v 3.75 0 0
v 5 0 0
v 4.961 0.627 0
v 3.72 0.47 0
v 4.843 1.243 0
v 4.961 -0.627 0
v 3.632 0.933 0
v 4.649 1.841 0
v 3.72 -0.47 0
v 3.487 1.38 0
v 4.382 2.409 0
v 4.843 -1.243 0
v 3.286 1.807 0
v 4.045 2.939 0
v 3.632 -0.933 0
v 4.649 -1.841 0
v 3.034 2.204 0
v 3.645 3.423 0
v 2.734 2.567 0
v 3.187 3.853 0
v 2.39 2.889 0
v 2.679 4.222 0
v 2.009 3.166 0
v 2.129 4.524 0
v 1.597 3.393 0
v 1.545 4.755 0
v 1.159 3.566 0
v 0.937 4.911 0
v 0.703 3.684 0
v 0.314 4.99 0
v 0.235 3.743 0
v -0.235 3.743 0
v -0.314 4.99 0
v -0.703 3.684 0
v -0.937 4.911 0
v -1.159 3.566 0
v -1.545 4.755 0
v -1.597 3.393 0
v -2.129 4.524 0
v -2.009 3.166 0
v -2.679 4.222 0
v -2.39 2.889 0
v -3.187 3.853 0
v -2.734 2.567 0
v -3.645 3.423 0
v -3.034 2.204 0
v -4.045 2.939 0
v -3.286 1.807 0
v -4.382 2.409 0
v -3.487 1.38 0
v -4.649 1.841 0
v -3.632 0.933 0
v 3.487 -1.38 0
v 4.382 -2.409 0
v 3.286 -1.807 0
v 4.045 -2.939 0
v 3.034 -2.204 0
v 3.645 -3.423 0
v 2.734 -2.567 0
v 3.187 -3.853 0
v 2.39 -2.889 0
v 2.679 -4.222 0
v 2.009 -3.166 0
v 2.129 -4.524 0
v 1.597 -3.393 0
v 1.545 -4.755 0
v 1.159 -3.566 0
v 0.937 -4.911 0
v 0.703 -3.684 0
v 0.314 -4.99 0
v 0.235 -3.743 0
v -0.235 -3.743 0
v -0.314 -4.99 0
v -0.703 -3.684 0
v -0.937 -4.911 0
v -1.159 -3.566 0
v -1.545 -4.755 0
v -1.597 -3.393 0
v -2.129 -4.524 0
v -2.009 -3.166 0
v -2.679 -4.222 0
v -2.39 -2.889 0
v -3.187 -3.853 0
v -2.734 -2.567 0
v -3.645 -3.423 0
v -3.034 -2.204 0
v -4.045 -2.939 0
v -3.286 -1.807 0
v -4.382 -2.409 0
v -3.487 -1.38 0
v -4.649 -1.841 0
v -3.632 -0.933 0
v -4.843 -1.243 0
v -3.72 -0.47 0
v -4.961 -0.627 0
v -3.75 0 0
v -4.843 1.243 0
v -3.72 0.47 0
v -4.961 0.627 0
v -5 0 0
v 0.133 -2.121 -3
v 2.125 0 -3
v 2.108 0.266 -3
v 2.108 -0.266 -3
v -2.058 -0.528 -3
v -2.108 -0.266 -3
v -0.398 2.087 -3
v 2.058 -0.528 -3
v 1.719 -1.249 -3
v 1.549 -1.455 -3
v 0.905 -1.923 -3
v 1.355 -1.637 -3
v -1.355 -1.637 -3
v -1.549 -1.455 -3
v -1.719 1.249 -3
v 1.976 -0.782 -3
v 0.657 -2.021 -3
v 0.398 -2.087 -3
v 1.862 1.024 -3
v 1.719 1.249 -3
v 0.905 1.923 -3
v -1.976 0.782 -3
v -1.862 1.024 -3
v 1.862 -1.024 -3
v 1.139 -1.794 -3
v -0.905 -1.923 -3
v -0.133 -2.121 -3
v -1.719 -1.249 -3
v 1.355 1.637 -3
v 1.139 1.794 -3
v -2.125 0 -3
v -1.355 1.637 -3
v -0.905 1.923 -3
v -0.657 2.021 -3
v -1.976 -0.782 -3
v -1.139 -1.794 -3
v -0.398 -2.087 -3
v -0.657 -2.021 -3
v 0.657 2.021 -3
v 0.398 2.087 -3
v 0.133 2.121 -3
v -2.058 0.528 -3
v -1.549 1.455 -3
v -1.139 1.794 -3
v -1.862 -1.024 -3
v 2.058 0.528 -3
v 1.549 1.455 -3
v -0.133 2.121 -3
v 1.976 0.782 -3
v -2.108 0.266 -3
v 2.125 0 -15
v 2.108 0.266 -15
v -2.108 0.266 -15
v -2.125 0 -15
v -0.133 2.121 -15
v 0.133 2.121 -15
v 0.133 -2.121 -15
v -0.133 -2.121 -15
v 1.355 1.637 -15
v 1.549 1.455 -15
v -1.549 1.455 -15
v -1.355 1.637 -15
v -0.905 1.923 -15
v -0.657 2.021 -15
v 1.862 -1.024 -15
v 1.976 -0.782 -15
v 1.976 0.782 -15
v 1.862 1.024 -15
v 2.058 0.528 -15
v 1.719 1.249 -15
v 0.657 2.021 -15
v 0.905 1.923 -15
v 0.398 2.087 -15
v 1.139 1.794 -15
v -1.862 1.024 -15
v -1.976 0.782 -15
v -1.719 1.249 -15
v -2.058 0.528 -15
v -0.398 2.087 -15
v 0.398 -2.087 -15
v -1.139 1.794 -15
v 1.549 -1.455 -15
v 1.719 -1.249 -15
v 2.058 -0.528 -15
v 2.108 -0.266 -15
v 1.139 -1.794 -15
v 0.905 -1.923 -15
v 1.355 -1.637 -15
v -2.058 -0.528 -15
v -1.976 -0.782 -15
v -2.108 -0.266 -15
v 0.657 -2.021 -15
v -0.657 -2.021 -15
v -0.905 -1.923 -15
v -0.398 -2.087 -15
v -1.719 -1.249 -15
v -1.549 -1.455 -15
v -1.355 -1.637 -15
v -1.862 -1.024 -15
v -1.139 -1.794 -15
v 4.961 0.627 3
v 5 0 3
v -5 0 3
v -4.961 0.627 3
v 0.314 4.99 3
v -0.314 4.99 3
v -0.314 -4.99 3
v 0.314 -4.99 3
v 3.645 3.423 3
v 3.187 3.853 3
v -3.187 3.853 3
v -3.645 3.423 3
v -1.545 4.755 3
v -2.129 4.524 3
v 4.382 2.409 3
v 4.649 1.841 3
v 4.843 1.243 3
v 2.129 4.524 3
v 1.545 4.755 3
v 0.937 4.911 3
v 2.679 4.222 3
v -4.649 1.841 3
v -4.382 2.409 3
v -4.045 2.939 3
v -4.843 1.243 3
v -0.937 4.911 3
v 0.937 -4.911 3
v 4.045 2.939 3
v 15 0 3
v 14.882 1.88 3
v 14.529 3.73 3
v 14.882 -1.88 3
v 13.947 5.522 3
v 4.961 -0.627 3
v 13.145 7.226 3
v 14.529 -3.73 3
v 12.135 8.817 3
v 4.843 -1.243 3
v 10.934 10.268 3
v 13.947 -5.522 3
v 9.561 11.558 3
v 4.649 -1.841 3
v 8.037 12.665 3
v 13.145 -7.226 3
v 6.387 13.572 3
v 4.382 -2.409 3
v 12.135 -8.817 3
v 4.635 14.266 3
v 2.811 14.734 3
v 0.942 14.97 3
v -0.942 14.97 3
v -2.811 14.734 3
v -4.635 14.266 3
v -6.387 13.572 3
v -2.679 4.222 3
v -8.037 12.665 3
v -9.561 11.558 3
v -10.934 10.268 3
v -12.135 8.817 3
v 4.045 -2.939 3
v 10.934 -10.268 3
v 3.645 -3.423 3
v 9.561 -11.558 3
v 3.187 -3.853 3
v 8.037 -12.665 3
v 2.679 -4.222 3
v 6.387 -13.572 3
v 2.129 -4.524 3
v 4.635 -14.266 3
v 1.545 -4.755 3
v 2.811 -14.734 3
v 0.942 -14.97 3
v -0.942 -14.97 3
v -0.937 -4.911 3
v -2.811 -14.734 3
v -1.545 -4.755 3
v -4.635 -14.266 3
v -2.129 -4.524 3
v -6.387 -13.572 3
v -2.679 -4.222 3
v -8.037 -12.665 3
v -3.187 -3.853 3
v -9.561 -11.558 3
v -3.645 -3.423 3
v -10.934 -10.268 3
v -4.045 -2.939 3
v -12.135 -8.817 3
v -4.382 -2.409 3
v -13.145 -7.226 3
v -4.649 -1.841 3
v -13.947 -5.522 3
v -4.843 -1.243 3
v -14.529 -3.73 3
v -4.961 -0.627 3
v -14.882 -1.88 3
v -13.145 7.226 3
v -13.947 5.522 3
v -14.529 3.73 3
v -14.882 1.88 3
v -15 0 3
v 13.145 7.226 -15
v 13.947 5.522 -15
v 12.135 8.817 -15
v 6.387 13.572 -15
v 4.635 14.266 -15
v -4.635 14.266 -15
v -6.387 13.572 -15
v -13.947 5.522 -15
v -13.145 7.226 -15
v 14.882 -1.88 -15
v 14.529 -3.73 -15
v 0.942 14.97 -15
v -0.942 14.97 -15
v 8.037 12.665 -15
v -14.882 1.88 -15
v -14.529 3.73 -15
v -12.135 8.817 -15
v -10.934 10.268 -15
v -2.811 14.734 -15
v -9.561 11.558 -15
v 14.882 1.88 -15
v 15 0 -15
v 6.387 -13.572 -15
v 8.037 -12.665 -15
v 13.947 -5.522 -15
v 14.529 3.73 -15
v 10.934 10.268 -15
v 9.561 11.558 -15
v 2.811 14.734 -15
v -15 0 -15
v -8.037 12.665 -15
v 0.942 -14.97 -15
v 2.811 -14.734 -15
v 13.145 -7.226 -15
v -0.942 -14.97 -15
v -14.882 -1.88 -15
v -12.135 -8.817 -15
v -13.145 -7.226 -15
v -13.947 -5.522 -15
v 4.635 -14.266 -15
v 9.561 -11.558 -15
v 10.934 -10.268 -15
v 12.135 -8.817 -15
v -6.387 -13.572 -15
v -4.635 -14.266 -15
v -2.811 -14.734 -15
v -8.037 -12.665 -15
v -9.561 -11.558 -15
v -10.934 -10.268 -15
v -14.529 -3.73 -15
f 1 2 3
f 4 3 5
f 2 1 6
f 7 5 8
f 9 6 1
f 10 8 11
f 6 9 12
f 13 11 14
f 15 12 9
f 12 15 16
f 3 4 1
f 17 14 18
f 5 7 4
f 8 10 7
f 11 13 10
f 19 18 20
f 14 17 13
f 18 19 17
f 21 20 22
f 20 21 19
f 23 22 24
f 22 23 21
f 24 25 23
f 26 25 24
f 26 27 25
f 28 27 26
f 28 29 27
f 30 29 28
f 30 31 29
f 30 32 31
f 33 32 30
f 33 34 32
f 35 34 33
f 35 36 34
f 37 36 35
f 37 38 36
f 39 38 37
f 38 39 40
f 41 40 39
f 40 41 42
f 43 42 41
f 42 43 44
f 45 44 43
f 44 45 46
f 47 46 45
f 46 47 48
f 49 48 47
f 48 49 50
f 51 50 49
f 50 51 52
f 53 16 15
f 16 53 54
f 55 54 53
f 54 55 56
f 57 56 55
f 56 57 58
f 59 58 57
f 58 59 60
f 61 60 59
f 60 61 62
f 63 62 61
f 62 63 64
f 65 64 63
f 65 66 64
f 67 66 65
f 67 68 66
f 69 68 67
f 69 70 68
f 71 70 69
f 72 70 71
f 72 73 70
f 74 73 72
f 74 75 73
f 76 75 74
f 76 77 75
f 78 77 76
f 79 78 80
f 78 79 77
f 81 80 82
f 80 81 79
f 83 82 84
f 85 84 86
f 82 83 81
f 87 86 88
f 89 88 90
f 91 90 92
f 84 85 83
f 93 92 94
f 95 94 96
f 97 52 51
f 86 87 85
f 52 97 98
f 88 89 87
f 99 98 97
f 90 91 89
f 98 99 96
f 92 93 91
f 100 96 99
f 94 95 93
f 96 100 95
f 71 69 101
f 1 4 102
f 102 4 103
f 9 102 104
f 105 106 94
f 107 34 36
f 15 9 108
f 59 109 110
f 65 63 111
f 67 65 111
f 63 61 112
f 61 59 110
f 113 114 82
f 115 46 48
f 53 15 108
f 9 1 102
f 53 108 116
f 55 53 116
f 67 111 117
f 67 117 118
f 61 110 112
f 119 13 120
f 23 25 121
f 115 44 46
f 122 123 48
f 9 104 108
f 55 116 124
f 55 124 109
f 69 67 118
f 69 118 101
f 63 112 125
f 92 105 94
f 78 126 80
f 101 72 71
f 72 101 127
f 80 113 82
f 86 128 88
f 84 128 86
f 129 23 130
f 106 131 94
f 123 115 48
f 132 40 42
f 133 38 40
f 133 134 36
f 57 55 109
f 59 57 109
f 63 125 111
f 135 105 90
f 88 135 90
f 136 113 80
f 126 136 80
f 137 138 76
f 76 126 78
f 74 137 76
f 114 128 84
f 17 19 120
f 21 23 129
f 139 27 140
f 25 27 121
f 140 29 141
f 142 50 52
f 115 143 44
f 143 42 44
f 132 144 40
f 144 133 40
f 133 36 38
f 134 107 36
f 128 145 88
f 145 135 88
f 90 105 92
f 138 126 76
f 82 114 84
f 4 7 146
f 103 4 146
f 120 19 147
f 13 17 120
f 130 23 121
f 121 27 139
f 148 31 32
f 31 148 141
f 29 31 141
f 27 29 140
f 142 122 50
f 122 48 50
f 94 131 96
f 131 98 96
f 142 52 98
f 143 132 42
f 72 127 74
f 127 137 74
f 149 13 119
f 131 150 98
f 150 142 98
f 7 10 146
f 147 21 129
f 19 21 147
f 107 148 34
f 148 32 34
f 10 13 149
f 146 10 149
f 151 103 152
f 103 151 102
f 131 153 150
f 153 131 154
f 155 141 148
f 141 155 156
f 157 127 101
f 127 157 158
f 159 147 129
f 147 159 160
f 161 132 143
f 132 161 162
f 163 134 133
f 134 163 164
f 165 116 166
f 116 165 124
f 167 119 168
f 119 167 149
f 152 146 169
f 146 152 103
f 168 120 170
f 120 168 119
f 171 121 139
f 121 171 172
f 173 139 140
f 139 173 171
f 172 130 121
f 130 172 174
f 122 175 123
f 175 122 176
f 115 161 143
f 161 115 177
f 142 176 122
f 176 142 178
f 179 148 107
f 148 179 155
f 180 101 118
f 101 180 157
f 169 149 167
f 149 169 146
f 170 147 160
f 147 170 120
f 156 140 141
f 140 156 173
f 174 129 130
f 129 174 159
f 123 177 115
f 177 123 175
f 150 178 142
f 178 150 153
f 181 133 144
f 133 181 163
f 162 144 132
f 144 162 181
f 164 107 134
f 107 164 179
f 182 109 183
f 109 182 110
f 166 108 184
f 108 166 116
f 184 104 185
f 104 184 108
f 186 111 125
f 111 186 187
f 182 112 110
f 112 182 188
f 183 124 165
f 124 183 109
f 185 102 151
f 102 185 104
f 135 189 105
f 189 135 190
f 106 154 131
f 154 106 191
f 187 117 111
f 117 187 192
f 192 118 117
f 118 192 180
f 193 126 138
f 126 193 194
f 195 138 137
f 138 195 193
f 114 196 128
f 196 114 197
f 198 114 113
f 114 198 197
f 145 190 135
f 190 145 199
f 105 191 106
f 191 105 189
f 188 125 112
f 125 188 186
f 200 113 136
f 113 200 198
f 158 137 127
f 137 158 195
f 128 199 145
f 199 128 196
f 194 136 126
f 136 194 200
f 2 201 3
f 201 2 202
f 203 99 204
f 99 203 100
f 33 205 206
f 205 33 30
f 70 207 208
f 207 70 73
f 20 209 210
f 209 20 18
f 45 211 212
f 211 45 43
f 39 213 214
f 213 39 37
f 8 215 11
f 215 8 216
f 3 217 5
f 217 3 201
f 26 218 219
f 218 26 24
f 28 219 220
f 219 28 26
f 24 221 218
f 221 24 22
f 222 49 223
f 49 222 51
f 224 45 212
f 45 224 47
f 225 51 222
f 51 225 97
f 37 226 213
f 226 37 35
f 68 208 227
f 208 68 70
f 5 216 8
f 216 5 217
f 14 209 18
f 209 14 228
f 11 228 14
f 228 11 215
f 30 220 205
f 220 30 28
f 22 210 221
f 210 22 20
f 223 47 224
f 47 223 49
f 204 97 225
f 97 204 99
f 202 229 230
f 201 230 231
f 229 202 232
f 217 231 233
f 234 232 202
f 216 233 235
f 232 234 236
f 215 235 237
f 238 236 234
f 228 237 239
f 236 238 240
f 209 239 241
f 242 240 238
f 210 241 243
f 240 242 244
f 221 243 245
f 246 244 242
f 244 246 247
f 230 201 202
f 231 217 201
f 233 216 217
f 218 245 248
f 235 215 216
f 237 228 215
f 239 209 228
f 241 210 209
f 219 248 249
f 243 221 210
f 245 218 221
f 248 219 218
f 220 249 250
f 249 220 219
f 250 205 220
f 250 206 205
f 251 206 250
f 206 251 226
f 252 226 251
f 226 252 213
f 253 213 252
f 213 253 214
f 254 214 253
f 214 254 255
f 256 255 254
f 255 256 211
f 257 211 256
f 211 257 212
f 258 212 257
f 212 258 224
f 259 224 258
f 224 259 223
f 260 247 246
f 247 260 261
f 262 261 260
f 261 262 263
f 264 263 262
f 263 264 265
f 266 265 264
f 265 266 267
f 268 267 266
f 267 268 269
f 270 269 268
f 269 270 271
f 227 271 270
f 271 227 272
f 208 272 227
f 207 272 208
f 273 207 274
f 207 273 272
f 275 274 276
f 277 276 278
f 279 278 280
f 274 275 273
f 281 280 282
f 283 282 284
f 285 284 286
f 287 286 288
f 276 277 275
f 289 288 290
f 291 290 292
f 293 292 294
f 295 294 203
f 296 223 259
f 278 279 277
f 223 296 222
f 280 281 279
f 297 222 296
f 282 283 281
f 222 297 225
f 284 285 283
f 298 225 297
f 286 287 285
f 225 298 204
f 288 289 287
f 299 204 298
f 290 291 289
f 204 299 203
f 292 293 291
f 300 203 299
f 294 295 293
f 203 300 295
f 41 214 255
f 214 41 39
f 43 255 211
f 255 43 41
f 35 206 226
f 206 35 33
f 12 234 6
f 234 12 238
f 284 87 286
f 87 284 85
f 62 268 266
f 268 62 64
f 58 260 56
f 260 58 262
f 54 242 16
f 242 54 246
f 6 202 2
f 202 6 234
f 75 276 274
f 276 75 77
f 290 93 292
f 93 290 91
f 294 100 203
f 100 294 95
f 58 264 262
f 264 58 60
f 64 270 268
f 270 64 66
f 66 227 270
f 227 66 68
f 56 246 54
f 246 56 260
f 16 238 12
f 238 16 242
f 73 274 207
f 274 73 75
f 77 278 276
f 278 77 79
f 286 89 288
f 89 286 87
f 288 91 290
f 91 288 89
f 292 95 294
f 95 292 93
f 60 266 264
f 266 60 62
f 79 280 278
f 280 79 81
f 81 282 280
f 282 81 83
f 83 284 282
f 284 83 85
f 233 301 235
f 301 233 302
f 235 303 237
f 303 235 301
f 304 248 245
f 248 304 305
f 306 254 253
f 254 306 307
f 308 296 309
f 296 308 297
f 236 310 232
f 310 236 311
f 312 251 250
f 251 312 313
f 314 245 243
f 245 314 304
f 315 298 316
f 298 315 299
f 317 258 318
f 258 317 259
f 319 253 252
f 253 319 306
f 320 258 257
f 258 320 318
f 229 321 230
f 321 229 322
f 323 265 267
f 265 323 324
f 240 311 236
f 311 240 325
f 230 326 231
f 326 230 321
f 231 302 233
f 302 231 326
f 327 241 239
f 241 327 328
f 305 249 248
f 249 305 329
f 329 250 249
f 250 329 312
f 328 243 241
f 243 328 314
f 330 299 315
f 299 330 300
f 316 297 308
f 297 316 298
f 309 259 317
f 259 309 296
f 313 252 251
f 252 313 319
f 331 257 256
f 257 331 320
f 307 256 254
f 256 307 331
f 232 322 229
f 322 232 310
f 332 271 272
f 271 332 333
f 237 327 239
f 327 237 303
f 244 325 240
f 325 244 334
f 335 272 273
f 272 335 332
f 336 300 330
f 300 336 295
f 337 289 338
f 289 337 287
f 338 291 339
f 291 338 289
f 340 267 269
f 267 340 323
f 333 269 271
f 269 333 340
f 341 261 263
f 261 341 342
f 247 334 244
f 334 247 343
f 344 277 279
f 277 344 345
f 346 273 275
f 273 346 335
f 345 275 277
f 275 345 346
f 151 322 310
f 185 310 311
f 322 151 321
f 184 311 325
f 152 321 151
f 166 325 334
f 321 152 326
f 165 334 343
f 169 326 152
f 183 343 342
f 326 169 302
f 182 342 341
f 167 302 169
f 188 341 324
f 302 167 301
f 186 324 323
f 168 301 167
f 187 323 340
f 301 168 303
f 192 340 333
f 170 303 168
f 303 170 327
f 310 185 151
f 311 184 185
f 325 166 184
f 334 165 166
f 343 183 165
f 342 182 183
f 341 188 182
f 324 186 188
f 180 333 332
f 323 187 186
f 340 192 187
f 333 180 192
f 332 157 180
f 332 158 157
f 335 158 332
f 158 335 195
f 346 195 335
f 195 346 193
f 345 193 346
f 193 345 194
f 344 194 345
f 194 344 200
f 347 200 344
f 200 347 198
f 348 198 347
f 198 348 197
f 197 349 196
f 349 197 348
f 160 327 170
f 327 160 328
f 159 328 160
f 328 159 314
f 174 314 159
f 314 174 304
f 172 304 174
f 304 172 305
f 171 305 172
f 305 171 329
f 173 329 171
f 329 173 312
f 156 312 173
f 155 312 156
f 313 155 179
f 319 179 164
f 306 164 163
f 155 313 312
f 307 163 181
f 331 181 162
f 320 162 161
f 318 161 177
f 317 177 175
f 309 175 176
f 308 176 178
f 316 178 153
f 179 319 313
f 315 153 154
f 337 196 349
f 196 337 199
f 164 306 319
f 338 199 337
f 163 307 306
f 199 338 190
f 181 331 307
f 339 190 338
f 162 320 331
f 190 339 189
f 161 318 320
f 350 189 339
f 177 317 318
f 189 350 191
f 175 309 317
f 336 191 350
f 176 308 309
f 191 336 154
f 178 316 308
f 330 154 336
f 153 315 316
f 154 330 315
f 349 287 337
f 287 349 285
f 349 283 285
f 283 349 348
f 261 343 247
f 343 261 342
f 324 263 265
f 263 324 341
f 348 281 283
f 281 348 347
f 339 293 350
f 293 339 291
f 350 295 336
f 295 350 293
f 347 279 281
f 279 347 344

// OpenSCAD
$fn = 50;

difference() {
	union() {
		translate(v = [0, 0, -15.0]) {
			cylinder(h = 18, r = 15.0);
		}
	}
	union() {
		translate(v = [0, 0, 0]) {
			rotate(a = [0, 0, 0]) {
				difference() {
					union() {
						translate(v = [0, 0, -18.0]) {
							cylinder(h = 18, r = 2.0);
						}
						translate(v = [0, 0, -3]) {
							cylinder(h = 3, r1 = 2.125, r2 = 3.75);
						}
						translate(v = [0, 0, -18.0]) {
							cylinder(h = 18, r = 2.125);
						}
						translate(v = [0, 0, -18.0]) {
							cylinder(h = 18, r = 2.0);
						}
					}
					union();
				}
			}
		}
		#cylinder(h = 3, r = 5.0);
	}
}
